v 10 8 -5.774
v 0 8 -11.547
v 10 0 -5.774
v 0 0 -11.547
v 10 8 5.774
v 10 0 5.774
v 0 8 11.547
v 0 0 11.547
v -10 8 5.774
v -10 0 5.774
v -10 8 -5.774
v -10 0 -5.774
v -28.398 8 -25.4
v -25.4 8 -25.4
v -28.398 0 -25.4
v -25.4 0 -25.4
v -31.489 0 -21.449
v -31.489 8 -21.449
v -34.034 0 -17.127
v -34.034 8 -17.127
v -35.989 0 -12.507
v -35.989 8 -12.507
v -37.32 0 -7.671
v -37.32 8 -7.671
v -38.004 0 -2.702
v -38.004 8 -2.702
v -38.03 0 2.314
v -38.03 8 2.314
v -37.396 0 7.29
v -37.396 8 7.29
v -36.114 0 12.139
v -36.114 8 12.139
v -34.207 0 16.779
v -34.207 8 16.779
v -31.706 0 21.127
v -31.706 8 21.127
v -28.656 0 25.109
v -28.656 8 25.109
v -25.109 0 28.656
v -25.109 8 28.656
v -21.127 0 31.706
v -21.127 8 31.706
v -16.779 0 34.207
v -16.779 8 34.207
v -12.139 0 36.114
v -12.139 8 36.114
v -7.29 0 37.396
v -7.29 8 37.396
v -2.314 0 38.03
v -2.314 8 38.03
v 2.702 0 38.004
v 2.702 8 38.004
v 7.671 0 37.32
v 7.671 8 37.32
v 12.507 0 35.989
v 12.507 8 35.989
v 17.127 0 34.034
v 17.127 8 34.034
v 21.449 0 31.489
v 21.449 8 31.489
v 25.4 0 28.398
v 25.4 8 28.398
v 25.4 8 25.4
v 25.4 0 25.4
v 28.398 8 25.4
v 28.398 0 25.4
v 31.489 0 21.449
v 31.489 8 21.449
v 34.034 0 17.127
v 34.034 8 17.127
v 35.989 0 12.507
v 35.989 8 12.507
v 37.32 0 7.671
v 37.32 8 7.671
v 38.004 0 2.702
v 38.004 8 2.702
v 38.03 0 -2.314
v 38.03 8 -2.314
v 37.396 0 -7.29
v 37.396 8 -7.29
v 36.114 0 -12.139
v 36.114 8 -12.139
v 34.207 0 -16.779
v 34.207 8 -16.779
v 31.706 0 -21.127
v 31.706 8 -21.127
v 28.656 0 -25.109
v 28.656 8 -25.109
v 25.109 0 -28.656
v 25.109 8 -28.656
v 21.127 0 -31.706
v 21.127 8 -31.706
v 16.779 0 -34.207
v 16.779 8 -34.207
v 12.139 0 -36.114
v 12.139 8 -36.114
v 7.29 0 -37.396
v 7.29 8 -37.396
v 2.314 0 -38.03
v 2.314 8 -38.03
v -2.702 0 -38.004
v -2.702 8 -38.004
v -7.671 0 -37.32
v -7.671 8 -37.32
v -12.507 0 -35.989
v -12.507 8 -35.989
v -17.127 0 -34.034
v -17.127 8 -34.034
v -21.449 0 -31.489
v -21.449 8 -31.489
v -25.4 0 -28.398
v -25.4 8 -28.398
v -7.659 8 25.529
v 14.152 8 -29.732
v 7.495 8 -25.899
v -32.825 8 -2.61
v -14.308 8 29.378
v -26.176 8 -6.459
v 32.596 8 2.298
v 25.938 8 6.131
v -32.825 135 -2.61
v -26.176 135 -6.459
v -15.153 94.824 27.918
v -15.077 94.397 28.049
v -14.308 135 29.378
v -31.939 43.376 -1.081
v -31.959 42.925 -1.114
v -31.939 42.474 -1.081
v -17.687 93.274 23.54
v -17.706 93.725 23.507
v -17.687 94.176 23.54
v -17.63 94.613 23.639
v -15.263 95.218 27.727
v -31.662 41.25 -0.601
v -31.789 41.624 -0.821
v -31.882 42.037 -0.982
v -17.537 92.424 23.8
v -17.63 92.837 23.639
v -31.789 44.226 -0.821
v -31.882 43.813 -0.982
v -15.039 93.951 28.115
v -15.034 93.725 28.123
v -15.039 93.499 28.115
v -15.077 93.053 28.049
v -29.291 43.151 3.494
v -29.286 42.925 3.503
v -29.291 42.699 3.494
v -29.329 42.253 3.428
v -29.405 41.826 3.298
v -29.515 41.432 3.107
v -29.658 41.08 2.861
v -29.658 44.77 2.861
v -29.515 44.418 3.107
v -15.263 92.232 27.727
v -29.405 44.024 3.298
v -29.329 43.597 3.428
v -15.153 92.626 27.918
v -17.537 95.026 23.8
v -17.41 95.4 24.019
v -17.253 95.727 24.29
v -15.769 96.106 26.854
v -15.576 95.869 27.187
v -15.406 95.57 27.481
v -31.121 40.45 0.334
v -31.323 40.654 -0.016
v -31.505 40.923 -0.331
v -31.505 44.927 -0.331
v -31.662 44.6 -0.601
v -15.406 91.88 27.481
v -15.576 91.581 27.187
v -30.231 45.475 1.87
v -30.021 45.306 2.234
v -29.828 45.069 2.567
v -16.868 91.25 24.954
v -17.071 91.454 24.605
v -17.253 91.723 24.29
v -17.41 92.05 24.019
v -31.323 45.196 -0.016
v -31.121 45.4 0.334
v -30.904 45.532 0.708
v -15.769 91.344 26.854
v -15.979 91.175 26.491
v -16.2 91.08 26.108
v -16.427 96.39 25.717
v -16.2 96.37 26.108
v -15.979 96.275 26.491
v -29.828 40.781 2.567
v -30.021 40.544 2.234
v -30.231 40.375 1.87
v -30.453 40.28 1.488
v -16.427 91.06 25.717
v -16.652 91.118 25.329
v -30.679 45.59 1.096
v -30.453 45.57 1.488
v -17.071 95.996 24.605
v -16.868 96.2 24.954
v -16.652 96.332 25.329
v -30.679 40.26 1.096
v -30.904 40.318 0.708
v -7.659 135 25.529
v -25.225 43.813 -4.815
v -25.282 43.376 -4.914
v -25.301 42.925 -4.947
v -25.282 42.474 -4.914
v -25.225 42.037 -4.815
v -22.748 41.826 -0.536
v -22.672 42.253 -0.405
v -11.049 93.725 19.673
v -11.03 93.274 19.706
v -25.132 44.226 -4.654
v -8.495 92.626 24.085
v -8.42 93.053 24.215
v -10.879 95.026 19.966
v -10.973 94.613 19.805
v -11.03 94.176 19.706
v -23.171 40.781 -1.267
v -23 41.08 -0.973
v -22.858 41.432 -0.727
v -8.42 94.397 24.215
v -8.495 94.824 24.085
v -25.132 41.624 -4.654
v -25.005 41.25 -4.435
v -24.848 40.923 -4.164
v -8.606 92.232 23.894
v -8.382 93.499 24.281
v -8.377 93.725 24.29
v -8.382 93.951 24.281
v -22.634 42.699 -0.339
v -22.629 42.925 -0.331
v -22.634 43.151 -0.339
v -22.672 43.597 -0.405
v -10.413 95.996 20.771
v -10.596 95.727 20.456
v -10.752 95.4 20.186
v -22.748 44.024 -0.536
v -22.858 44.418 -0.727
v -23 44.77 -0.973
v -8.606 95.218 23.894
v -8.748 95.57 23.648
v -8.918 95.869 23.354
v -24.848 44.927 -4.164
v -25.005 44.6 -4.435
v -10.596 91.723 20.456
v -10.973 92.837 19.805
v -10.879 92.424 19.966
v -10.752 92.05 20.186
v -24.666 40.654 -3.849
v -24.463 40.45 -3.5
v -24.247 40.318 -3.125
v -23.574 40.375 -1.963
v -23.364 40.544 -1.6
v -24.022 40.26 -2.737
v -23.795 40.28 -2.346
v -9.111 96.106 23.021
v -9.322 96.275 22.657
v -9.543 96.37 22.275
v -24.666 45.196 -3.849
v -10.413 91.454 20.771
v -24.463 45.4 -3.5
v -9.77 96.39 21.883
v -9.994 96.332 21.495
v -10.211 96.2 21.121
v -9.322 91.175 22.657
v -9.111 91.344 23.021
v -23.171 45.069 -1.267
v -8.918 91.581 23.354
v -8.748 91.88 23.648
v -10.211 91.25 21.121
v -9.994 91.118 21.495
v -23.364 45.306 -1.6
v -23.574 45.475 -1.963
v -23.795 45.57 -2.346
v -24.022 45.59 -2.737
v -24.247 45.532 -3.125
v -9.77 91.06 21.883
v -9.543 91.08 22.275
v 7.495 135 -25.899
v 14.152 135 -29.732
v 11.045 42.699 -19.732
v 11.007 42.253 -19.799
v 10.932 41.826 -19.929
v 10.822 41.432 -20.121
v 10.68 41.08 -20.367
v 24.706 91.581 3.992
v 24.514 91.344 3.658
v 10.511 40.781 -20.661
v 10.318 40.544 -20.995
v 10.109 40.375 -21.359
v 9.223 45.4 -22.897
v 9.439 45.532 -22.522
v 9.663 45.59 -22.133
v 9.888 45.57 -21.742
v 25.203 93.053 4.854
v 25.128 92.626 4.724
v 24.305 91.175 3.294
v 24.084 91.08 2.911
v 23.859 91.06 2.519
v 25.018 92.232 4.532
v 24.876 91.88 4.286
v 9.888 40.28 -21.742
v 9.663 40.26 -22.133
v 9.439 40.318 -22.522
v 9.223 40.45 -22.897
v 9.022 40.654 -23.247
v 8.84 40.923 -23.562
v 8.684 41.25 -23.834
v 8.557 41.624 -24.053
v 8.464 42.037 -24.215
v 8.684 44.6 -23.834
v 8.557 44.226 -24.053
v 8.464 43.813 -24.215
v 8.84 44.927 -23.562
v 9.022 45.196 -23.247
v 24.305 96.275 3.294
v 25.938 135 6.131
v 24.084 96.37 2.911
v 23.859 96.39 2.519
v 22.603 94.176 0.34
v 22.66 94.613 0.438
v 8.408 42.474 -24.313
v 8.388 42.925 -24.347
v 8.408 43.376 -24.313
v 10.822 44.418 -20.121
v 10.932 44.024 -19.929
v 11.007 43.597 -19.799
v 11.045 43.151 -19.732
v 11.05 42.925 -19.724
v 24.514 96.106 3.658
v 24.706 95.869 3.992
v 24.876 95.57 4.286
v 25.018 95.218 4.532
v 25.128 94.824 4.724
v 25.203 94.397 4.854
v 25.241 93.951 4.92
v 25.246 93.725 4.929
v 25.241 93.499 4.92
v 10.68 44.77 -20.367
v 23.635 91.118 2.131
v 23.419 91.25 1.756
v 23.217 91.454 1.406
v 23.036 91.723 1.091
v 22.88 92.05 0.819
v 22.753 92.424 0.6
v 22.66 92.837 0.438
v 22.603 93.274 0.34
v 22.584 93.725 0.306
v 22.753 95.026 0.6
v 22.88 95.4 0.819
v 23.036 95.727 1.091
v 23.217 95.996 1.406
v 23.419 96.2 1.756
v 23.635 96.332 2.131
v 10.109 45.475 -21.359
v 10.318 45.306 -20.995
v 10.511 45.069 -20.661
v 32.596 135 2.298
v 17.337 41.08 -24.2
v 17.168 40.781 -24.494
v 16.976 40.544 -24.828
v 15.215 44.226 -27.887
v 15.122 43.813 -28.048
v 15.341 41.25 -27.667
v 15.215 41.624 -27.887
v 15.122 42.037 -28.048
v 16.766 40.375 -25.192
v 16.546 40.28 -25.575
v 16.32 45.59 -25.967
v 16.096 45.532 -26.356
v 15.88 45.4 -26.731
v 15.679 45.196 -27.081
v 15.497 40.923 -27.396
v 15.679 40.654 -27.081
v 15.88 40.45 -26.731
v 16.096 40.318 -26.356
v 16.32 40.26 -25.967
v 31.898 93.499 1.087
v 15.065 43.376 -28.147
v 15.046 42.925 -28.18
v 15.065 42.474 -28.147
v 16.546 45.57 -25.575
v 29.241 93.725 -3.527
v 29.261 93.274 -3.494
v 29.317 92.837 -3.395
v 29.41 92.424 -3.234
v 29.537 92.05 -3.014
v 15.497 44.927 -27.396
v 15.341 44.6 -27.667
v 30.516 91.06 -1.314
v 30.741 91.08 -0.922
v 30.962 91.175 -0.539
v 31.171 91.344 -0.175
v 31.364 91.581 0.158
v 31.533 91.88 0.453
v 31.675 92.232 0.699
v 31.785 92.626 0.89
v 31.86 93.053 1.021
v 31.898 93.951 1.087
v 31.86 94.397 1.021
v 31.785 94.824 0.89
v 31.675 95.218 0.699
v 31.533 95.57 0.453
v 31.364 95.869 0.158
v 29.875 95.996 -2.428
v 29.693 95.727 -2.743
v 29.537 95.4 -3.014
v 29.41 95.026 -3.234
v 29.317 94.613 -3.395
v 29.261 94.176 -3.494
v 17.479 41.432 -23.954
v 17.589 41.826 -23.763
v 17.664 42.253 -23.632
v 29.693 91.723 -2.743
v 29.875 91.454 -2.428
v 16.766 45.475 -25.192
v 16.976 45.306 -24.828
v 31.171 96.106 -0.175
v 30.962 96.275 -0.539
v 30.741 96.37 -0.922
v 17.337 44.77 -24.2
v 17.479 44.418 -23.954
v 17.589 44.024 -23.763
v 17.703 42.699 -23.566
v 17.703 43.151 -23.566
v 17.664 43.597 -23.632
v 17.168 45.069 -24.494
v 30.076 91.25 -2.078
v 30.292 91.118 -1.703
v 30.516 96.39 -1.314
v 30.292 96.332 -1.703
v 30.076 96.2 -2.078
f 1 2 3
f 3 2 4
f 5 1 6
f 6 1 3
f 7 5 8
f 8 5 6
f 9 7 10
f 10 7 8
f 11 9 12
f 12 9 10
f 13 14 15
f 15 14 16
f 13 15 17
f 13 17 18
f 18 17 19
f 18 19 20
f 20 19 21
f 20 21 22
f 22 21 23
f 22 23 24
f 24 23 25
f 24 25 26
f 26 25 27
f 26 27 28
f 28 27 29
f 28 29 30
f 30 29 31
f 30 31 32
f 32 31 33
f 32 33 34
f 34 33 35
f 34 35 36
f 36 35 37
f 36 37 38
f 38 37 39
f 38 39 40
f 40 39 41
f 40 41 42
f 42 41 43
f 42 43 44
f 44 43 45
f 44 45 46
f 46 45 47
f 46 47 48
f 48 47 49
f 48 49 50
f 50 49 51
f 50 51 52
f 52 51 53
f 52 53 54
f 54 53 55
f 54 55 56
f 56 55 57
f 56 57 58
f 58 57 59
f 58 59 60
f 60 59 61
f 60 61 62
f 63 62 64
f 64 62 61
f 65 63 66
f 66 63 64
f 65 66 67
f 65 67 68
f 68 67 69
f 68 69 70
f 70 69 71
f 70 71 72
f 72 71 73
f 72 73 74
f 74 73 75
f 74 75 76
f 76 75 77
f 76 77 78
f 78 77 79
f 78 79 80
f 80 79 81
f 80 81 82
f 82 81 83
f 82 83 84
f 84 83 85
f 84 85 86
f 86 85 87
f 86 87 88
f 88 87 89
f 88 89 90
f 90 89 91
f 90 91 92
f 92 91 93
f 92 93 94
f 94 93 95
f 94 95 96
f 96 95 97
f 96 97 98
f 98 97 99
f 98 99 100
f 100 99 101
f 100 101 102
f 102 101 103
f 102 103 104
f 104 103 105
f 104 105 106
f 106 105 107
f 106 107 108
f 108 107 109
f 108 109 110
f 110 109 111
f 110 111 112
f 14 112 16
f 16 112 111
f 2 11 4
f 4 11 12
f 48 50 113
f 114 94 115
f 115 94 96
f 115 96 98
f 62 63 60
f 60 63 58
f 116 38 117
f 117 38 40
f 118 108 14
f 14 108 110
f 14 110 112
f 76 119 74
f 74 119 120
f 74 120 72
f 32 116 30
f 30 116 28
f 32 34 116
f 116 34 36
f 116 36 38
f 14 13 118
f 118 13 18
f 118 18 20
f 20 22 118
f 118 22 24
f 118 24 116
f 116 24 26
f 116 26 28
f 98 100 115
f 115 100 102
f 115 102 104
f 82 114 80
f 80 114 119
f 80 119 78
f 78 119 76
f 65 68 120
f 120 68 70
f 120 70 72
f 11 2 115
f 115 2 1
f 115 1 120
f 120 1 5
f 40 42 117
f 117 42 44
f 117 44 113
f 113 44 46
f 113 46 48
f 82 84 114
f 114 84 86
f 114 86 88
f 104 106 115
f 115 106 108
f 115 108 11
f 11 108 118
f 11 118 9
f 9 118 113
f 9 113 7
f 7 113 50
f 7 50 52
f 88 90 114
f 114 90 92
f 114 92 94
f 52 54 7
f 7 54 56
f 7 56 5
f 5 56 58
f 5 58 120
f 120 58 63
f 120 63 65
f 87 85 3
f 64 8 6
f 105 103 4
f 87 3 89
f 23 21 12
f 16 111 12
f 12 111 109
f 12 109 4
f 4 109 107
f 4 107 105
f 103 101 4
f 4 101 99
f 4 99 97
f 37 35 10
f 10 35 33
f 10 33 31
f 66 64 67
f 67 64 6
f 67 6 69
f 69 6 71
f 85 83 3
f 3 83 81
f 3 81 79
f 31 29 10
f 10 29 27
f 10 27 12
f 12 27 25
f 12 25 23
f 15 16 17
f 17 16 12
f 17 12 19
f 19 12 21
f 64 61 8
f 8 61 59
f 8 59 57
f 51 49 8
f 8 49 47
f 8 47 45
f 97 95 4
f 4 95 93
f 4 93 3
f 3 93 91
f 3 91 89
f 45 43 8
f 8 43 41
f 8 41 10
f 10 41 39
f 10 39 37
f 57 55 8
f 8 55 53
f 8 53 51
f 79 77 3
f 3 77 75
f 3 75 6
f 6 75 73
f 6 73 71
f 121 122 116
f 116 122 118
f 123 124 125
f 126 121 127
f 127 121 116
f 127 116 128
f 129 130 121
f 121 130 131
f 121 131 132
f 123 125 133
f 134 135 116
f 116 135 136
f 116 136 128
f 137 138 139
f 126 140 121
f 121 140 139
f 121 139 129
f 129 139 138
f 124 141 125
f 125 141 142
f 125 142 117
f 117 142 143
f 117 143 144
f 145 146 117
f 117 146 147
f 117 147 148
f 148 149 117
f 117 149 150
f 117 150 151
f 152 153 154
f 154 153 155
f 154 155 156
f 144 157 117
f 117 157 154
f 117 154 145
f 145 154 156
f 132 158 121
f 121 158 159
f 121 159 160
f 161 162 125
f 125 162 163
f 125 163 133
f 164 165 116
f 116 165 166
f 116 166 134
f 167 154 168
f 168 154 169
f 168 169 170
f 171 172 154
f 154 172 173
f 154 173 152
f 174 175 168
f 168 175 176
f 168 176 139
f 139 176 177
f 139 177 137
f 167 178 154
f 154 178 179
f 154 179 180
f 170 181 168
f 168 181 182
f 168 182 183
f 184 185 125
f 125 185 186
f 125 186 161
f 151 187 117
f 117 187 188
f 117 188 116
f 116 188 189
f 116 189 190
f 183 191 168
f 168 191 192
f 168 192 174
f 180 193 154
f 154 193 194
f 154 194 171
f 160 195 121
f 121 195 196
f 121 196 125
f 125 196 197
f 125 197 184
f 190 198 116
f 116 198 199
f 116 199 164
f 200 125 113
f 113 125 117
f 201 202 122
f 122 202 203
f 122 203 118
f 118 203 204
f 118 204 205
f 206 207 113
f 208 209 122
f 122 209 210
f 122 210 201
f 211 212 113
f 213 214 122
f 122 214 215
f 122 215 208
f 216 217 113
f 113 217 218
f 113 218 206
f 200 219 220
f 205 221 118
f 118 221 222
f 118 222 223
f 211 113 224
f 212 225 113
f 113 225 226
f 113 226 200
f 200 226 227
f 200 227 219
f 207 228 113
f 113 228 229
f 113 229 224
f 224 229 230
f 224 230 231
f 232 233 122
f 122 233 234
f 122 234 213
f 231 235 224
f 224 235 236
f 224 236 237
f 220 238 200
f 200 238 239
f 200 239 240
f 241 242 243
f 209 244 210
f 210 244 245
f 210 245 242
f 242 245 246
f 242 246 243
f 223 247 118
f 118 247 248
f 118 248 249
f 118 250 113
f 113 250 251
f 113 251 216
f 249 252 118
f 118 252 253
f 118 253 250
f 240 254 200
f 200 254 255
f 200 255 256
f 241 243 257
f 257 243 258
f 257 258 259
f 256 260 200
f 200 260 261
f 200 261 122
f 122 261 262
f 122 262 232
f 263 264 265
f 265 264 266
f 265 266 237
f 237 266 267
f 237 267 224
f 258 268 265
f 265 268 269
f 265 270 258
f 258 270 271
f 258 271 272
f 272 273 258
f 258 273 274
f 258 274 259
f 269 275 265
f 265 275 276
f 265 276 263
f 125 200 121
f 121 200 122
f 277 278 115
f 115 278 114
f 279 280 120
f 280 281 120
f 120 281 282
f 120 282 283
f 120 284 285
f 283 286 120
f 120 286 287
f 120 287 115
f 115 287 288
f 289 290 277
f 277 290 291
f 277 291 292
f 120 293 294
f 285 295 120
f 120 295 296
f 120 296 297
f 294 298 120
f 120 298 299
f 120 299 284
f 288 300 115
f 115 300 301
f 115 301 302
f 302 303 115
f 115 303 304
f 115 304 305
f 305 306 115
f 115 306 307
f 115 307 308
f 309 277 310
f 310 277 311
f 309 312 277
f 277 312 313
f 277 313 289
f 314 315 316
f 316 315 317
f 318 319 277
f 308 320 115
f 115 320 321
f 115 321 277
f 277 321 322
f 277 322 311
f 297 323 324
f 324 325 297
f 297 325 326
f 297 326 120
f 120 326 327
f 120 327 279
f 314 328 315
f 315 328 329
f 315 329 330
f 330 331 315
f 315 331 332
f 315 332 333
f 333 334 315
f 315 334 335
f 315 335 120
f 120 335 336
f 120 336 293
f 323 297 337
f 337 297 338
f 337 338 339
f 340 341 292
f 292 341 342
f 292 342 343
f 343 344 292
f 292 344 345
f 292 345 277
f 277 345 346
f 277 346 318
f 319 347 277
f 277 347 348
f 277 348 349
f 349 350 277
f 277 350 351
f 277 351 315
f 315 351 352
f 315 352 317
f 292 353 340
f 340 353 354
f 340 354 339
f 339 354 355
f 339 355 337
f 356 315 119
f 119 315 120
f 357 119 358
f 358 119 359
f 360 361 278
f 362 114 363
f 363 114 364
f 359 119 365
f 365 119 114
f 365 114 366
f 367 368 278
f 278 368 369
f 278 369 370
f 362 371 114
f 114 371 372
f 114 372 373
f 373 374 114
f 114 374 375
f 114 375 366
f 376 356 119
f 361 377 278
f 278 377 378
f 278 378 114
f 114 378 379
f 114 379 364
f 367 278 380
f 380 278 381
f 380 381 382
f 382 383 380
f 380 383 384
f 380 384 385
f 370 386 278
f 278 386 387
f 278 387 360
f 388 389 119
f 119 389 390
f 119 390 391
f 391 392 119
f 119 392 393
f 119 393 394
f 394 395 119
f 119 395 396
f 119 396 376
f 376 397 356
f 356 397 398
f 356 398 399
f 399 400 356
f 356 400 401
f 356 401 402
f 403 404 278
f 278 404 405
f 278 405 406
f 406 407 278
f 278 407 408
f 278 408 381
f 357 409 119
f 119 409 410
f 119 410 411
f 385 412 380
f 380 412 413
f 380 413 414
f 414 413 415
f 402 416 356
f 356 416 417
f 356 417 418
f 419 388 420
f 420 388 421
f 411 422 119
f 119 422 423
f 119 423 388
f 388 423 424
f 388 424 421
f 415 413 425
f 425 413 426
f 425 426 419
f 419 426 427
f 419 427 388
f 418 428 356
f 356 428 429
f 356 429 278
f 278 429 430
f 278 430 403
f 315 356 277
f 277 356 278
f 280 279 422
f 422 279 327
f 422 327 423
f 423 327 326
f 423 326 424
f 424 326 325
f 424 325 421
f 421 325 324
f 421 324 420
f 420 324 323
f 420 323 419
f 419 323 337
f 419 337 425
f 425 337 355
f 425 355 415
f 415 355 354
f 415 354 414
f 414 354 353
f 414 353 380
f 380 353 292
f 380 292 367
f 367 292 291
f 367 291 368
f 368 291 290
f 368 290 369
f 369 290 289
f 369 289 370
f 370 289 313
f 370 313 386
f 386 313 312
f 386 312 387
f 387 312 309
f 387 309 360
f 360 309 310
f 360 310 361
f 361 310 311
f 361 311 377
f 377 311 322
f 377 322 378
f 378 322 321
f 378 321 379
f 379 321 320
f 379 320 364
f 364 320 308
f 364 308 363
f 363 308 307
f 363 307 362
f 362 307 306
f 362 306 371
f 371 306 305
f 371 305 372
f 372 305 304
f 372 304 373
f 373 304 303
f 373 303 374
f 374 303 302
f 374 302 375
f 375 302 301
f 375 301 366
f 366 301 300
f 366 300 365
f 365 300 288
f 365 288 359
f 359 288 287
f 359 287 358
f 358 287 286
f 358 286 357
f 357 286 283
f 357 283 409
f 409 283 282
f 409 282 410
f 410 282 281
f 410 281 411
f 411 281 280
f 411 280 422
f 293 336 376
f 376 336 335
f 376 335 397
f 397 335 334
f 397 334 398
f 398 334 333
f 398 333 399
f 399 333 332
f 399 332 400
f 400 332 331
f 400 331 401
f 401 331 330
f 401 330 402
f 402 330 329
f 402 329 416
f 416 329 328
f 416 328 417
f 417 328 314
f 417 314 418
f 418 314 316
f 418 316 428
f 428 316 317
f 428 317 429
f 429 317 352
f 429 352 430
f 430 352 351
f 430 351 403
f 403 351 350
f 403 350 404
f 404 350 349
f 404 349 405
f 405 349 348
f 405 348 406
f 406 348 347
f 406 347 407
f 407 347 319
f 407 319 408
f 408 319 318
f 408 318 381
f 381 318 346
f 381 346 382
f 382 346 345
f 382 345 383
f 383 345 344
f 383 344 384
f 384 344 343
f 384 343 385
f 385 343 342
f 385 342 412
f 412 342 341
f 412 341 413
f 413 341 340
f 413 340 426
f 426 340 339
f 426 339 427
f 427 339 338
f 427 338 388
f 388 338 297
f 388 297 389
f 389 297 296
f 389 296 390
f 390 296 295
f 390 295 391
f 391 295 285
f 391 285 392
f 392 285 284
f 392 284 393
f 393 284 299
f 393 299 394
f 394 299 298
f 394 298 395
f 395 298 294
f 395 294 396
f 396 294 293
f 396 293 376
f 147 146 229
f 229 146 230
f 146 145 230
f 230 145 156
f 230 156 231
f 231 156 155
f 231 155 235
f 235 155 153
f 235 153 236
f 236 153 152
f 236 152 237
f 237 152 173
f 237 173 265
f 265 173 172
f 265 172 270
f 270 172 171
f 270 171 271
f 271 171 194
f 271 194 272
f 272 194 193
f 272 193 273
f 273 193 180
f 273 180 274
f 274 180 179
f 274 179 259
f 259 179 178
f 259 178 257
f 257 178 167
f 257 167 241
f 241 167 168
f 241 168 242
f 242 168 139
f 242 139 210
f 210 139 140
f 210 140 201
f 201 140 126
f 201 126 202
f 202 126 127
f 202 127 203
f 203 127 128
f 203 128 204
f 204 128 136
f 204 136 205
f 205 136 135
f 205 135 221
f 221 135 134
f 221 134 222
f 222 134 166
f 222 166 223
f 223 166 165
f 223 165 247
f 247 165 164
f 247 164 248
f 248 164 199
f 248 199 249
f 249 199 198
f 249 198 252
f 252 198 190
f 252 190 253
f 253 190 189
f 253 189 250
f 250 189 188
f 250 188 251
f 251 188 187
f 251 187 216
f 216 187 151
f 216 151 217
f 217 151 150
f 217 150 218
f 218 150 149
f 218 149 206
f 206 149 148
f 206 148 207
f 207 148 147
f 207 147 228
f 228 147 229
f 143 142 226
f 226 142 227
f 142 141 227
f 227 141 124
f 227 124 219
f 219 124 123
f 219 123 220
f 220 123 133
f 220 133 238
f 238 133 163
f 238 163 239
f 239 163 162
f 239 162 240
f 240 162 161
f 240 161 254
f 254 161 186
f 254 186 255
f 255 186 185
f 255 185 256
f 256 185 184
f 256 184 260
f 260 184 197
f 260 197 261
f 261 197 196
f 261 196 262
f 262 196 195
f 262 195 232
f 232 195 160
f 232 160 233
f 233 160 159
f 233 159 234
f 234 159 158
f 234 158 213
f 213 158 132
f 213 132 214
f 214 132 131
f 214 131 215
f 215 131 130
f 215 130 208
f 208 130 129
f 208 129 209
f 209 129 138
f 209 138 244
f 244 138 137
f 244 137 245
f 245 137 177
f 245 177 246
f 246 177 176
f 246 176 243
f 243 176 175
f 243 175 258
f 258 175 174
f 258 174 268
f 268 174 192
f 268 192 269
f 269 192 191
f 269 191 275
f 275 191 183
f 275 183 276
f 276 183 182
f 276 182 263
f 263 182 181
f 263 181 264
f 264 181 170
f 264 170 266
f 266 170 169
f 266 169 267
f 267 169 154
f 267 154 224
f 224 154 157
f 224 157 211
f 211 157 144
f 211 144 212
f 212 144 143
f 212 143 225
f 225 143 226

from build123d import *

# Parameters (mm, degrees)
BOSS_EXTRUDE1_DEPTH = 8
BOSS_EXTRUDE3_DEPTH = 127
SKETCH8_R           = 2.667
CUT_EXTRUDE1_DEPTH  = 127


with BuildPart() as part:
    # Sketch2 → Boss-Extrude1 (new body)
    with BuildSketch(Plane(origin=(0, 0, 0), x_dir=(1, 0, 0), z_dir=(0, 1, 0))):
        with BuildLine():
            ThreePointArc((-28.398063314, 25.4), (-26.940768363, -26.940768363), (25.4, -28.398063314))
            Line((25.4, -28.398063314), (25.4, -25.4))
            Line((25.4, -25.4), (28.398063314, -25.4))
            ThreePointArc((28.398063314, -25.4), (26.940768363, 26.940768363), (-25.4, 28.398063314))
            Line((-25.4, 28.398063314), (-25.4, 25.4))
            Line((-25.4, 25.4), (-28.398063314, 25.4))
        make_face()
        Polygon((10, 5.773502692), (10, -5.773502692), (0, -11.547005384), (-10, -5.773502692), (-10, 5.773502692), (0, 11.547005384), align=None, mode=Mode.SUBTRACT)
    extrude(amount=BOSS_EXTRUDE1_DEPTH)

    # Sketch7 → Boss-Extrude3 (add)
    with BuildSketch(Plane(origin=(0, 8, 0), x_dir=(1, 0, 0), z_dir=(0, 1, 0))):
        Polygon((-32.824735076, 2.610171349), (-14.307691077, -29.37771274), (-7.659250908, -25.529084967), (-26.176294907, 6.458799122), align=None)
    boss_extrude3 = extrude(amount=BOSS_EXTRUDE3_DEPTH)

    # Mirror1: Boss-Extrude3 across plane
    add(boss_extrude3.mirror(Plane(origin=(-21.745710428, -1.979026449, -37.664675308), x_dir=(0.4999999999999996, 0, 0.8660254037844389), z_dir=(0.8660254037844389, 0, -0.4999999999999996))))

    # Sketch8 → Cut-Extrude1 (cut)
    with BuildSketch(Plane(origin=(23.485284585, 0, -13.523431686), x_dir=(-0.49900881712180367, 0, -0.8665969076997092), z_dir=(0.8665969076997092, 0, -0.49900881712180367))):
        with Locations((-14.202194794, 93.725)):
            Circle(SKETCH8_R)
        with Locations((14.245786586, 42.925)):
            Circle(SKETCH8_R)
    extrude(amount=-CUT_EXTRUDE1_DEPTH, mode=Mode.SUBTRACT)


solid = part.part
